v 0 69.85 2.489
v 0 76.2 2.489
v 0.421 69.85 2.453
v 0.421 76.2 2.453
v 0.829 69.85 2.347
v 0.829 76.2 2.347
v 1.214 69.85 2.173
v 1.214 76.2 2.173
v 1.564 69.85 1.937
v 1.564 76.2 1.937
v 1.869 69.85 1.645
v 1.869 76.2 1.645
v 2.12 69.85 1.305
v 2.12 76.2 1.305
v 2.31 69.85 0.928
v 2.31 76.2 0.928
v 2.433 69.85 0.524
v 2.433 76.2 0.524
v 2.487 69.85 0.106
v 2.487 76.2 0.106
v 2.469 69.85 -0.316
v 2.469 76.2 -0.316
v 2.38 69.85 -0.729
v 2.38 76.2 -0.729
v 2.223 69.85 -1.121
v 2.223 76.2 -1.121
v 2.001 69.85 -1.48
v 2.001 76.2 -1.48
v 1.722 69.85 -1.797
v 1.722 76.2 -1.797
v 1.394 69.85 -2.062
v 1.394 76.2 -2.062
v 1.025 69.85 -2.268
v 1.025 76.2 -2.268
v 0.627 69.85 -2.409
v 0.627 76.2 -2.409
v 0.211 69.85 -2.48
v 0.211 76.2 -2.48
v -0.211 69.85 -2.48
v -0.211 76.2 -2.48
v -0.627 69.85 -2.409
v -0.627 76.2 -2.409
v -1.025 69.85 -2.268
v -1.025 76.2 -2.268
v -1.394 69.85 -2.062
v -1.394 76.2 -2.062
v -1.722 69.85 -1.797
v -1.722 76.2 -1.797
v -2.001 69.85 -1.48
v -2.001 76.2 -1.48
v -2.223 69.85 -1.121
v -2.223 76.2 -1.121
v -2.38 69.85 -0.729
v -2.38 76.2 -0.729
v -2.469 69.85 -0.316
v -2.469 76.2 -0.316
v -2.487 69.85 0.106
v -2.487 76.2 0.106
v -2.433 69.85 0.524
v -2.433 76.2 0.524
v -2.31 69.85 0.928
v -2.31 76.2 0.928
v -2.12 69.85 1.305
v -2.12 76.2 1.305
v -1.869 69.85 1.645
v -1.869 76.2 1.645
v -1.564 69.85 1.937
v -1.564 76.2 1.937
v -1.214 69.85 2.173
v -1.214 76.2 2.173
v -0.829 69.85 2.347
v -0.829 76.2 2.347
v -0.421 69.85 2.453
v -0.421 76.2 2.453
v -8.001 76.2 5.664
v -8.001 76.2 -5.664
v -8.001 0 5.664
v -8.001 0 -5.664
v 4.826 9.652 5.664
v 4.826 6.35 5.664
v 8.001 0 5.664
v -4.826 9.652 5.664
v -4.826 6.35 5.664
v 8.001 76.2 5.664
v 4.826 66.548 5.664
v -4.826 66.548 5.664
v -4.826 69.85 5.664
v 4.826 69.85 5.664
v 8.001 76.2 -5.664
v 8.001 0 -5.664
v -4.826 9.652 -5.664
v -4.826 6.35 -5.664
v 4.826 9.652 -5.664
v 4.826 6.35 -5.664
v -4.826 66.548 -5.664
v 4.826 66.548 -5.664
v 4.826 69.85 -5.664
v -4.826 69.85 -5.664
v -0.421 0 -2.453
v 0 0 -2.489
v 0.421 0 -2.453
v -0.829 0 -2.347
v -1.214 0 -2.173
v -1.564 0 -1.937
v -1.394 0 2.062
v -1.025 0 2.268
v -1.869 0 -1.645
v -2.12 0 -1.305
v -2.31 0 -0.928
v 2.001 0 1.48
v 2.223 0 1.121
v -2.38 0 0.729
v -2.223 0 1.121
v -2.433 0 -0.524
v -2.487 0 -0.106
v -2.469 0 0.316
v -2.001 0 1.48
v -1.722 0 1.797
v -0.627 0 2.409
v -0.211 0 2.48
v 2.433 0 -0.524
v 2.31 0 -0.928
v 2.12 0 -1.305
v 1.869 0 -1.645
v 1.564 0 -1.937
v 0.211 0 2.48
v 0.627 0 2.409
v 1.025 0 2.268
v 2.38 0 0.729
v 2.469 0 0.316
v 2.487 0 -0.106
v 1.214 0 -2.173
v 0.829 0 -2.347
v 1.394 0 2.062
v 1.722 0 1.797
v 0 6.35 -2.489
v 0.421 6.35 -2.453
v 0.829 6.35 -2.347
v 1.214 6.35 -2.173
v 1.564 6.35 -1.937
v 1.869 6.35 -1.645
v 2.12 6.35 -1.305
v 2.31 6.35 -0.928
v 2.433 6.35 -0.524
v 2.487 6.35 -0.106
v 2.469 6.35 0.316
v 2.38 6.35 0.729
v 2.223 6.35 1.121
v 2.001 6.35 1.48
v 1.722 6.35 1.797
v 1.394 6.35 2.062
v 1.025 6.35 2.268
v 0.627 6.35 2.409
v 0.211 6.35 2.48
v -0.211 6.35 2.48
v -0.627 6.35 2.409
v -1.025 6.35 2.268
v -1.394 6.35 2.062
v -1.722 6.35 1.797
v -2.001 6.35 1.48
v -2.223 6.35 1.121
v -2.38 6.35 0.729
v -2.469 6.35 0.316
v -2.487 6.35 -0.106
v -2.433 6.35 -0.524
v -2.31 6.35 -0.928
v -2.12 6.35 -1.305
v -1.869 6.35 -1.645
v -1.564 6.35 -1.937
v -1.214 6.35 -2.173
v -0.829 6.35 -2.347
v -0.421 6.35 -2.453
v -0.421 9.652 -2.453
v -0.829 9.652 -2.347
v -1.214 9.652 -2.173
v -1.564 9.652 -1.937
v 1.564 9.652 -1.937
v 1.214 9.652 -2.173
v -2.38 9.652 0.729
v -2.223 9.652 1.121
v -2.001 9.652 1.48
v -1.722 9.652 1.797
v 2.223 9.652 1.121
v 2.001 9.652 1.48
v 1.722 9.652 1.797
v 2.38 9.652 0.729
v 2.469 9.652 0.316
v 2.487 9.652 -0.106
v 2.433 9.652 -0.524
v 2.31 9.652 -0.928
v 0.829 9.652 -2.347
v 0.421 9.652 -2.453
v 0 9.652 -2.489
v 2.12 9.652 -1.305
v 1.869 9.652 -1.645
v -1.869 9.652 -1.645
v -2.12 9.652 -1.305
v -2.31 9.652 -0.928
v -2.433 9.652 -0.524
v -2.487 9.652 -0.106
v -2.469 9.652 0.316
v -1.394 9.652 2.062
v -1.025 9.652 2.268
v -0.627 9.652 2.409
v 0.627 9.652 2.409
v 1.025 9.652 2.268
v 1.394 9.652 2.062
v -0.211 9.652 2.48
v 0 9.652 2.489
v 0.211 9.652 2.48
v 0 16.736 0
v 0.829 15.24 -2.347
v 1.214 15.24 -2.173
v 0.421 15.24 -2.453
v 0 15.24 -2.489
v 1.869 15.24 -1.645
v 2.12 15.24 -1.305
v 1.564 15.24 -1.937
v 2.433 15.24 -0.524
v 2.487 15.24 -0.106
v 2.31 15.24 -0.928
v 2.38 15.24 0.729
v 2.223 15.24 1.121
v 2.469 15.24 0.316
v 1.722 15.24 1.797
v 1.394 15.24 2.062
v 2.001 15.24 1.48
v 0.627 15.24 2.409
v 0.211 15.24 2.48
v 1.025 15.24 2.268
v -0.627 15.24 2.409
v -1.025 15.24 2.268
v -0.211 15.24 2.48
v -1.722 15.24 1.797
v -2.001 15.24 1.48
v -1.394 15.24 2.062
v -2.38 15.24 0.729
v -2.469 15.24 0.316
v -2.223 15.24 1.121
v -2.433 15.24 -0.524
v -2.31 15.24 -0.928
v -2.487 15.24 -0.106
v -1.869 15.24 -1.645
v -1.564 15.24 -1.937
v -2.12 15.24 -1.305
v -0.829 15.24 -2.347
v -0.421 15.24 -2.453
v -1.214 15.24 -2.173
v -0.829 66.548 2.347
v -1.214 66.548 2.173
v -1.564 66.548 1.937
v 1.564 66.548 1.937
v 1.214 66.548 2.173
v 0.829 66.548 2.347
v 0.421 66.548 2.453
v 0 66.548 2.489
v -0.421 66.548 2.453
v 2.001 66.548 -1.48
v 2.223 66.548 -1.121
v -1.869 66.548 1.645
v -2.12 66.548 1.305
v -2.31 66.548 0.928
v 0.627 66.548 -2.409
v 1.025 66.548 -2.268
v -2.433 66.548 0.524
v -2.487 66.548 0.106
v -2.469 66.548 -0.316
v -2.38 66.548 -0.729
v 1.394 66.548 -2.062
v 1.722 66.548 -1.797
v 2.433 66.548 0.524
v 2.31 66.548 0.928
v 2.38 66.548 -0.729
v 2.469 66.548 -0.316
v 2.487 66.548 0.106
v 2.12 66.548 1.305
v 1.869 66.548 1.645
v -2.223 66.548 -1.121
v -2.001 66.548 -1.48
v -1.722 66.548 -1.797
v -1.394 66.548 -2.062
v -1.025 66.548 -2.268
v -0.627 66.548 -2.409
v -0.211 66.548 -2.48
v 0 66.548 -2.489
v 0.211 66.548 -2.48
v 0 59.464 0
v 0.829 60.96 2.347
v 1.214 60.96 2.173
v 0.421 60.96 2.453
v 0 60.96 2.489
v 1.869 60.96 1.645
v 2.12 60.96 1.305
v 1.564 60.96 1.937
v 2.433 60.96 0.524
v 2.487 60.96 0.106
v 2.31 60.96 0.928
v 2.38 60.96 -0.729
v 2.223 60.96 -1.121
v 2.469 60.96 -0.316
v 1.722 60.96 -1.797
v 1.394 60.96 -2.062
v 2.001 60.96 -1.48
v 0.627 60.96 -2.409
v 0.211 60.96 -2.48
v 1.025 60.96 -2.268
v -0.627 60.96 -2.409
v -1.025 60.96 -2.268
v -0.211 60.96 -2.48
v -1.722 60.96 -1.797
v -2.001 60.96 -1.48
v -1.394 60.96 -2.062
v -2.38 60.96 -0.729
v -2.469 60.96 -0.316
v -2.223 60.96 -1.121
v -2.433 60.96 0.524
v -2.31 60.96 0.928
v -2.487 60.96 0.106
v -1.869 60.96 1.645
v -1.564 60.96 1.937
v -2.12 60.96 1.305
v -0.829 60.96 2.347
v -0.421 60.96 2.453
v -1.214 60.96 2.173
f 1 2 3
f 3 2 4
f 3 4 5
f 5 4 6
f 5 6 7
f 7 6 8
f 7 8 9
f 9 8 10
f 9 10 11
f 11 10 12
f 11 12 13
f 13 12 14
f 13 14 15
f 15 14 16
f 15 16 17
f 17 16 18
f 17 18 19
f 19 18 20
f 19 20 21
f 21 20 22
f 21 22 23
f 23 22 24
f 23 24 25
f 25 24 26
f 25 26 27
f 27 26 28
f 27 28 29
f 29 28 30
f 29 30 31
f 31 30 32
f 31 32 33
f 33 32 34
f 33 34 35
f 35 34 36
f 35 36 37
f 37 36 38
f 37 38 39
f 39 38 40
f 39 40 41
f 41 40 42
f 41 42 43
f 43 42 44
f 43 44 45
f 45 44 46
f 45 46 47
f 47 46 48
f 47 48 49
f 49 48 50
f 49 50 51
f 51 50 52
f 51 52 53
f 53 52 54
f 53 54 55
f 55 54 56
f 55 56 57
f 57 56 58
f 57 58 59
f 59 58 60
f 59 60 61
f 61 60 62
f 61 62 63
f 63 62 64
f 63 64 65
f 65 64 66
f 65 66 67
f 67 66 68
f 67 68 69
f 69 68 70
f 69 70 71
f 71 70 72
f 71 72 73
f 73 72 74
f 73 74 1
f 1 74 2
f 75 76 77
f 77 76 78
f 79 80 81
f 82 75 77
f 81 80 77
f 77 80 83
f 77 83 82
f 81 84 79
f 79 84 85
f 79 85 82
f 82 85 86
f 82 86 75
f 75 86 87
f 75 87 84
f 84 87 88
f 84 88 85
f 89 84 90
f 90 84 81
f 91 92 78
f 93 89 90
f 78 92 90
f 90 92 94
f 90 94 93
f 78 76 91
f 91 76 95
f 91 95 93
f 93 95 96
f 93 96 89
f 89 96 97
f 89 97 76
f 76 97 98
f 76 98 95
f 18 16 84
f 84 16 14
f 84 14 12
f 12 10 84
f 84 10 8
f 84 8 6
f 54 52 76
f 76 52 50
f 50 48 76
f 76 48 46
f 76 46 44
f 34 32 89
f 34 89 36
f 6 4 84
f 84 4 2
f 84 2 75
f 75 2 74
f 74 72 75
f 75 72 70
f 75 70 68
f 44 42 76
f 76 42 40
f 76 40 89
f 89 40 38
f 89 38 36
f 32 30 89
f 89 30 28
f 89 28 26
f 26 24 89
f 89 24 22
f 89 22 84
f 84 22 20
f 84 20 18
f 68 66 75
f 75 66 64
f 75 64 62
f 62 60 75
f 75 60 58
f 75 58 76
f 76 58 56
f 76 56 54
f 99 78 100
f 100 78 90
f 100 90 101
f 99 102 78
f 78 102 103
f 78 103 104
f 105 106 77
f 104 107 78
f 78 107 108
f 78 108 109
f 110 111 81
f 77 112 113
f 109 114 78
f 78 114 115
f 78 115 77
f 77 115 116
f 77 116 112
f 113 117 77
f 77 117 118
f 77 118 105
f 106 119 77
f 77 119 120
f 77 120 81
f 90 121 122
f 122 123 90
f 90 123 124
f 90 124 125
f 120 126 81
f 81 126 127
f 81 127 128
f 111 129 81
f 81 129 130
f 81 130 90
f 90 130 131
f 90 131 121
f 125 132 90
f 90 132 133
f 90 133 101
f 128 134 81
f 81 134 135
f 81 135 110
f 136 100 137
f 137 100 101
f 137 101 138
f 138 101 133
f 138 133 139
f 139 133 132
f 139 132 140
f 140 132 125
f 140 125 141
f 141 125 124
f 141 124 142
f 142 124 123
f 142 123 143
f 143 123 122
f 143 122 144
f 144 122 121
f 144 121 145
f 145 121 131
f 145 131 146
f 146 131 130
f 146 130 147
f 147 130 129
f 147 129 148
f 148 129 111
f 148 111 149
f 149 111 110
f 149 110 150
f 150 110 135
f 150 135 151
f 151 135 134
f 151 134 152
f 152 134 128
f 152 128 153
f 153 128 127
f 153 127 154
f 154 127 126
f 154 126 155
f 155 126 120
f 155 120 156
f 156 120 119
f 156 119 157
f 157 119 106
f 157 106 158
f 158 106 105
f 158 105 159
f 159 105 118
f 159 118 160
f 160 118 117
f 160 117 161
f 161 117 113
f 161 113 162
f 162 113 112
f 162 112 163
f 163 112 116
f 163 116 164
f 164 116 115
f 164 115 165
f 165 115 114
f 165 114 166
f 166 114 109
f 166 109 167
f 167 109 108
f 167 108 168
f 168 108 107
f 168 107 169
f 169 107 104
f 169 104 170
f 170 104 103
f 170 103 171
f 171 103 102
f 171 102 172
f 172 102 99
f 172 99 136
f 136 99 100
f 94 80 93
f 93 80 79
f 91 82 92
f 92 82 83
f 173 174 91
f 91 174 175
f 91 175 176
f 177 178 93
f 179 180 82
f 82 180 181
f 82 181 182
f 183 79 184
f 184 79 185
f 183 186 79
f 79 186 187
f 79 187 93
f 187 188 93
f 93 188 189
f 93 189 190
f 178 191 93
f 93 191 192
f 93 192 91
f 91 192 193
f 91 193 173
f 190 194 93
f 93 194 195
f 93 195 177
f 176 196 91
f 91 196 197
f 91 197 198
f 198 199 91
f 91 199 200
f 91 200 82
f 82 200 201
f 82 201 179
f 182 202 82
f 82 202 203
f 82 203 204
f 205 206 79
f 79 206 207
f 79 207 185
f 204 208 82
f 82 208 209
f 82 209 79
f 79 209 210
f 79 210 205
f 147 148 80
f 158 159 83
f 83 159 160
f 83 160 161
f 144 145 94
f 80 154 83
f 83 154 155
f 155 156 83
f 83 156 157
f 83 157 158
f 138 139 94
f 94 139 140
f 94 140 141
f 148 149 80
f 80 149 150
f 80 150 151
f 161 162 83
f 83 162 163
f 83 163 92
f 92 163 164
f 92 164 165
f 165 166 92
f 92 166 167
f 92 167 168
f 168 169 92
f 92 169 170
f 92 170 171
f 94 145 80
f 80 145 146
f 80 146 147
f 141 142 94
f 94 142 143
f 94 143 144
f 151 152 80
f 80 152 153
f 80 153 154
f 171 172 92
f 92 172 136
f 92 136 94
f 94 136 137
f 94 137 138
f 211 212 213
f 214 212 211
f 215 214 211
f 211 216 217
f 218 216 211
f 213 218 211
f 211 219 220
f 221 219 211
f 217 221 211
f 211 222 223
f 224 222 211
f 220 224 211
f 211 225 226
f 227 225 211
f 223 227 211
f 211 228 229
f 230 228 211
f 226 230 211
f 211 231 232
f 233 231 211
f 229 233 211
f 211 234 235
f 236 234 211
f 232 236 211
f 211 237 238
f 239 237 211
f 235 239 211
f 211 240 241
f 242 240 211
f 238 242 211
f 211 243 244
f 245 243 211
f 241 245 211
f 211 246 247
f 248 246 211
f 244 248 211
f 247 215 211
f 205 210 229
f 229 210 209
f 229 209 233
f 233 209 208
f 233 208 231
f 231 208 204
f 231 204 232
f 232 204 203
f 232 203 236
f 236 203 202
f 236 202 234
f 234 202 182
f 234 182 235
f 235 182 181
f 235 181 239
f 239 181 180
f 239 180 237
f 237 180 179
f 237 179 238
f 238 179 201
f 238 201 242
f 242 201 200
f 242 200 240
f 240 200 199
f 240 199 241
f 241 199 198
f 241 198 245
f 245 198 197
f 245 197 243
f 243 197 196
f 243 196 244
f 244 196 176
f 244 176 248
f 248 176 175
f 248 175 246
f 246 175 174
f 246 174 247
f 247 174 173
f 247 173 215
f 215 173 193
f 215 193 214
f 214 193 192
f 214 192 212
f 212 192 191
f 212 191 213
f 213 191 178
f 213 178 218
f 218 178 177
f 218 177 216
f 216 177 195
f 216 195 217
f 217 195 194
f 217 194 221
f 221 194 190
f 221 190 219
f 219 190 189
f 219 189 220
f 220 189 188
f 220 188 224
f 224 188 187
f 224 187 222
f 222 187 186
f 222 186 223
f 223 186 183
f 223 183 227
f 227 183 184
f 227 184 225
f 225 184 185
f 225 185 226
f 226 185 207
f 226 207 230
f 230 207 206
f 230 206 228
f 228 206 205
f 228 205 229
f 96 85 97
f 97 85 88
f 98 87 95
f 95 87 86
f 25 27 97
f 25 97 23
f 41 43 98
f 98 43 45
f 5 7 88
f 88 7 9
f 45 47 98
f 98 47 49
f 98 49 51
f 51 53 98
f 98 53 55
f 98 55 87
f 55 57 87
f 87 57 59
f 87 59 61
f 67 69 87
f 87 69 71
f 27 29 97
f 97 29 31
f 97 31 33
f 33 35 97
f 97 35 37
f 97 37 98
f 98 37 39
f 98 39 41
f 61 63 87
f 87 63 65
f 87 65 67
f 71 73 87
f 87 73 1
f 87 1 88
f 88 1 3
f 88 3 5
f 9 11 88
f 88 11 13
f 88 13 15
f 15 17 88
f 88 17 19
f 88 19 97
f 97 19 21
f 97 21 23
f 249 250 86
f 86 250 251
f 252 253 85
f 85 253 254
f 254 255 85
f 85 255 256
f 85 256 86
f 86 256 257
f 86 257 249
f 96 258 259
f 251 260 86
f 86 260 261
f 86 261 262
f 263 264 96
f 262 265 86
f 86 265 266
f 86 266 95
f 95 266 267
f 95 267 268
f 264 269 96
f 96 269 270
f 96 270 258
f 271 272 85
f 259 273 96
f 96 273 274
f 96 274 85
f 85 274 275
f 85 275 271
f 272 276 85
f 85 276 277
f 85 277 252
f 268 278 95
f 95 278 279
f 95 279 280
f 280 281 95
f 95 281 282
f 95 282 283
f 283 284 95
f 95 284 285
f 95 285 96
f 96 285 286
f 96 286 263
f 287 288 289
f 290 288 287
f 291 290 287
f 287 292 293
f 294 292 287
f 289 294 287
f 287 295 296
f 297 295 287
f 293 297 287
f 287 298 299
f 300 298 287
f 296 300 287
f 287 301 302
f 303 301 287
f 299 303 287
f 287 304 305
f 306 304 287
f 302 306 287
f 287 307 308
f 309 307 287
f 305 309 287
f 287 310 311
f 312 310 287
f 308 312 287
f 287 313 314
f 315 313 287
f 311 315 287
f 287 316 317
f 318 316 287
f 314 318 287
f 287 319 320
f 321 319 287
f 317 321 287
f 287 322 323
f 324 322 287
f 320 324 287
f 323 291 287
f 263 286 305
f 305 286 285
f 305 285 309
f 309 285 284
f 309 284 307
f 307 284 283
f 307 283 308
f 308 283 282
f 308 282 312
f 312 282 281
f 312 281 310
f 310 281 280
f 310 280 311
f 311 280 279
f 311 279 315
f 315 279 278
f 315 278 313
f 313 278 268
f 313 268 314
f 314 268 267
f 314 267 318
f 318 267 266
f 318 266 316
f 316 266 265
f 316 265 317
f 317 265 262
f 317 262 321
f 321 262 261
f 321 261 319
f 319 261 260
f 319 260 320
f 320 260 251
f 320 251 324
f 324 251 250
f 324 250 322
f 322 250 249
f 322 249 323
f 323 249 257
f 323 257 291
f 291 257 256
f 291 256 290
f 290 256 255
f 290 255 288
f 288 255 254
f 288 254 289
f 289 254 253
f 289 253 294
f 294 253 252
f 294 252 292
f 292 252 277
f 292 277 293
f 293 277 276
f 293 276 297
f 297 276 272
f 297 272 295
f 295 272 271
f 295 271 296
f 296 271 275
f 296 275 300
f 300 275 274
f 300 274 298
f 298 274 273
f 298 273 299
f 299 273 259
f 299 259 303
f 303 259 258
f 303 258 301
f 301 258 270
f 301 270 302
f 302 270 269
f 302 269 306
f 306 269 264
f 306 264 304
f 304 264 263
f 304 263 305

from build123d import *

# Parameters (mm, degrees)
SKETCH1_W                      = 16.002
SKETCH1_H                      = 11.3284
BOSS_EXTRUDE1_DEPTH            = 76.2
F_9_0_196_DIAMETER_HOLE1_D     = 4.9784
F_9_0_196_DIAMETER_HOLE1_DEPTH = 15.24
F_9_0_196_DIAMETER_HOLE1_TIP   = 1.495662253
F_9_0_196_DIAMETER_HOLE2_D     = 4.9784
F_9_0_196_DIAMETER_HOLE2_DEPTH = 15.24
F_9_0_196_DIAMETER_HOLE2_TIP   = 1.495662253
SKETCH9_W                      = 9.652
SKETCH9_H                      = 3.302
CUT_EXTRUDE1_DEPTH             = 76.2


with BuildPart() as part:
    # Sketch1 → Boss-Extrude1 (new body)
    with BuildSketch(Plane(origin=(0, 0, 0), x_dir=(1, 0, 0), z_dir=(0, 1, 0))):
        Rectangle(SKETCH1_W, SKETCH1_H)
    extrude(amount=BOSS_EXTRUDE1_DEPTH)

    # #9 (0.196) Diameter Hole1
    with Locations(Plane(origin=(0, 76.2, 0), x_dir=(1, 0, 0), z_dir=(0, 1, 0))):
        with Locations((0, 0)):
            Hole(F_9_0_196_DIAMETER_HOLE1_D / 2, depth=F_9_0_196_DIAMETER_HOLE1_DEPTH)
            with Locations((0, 0, -(F_9_0_196_DIAMETER_HOLE1_DEPTH + F_9_0_196_DIAMETER_HOLE1_TIP / 2))):  # 118° drill point
                Cone(0, F_9_0_196_DIAMETER_HOLE1_D / 2, F_9_0_196_DIAMETER_HOLE1_TIP, mode=Mode.SUBTRACT)

    # #9 (0.196) Diameter Hole2
    with Locations(Plane(origin=(0, 0, 0), x_dir=(-1, 0, 0), z_dir=(0, -1, 0))):
        with Locations((0, 0)):
            Hole(F_9_0_196_DIAMETER_HOLE2_D / 2, depth=F_9_0_196_DIAMETER_HOLE2_DEPTH)
            with Locations((0, 0, -(F_9_0_196_DIAMETER_HOLE2_DEPTH + F_9_0_196_DIAMETER_HOLE2_TIP / 2))):  # 118° drill point
                Cone(0, F_9_0_196_DIAMETER_HOLE2_D / 2, F_9_0_196_DIAMETER_HOLE2_TIP, mode=Mode.SUBTRACT)

    # Sketch9 → Cut-Extrude1 (cut)
    with BuildSketch(Plane(origin=(0, 0, -5.6642), x_dir=(-1, 0, 0), z_dir=(0, 0, -1))):
        with Locations((0, 8.001)):
            Rectangle(SKETCH9_W, SKETCH9_H)
        with Locations((0, 68.199)):
            Rectangle(SKETCH9_W, SKETCH9_H)
    extrude(amount=-CUT_EXTRUDE1_DEPTH, mode=Mode.SUBTRACT)


solid = part.part
